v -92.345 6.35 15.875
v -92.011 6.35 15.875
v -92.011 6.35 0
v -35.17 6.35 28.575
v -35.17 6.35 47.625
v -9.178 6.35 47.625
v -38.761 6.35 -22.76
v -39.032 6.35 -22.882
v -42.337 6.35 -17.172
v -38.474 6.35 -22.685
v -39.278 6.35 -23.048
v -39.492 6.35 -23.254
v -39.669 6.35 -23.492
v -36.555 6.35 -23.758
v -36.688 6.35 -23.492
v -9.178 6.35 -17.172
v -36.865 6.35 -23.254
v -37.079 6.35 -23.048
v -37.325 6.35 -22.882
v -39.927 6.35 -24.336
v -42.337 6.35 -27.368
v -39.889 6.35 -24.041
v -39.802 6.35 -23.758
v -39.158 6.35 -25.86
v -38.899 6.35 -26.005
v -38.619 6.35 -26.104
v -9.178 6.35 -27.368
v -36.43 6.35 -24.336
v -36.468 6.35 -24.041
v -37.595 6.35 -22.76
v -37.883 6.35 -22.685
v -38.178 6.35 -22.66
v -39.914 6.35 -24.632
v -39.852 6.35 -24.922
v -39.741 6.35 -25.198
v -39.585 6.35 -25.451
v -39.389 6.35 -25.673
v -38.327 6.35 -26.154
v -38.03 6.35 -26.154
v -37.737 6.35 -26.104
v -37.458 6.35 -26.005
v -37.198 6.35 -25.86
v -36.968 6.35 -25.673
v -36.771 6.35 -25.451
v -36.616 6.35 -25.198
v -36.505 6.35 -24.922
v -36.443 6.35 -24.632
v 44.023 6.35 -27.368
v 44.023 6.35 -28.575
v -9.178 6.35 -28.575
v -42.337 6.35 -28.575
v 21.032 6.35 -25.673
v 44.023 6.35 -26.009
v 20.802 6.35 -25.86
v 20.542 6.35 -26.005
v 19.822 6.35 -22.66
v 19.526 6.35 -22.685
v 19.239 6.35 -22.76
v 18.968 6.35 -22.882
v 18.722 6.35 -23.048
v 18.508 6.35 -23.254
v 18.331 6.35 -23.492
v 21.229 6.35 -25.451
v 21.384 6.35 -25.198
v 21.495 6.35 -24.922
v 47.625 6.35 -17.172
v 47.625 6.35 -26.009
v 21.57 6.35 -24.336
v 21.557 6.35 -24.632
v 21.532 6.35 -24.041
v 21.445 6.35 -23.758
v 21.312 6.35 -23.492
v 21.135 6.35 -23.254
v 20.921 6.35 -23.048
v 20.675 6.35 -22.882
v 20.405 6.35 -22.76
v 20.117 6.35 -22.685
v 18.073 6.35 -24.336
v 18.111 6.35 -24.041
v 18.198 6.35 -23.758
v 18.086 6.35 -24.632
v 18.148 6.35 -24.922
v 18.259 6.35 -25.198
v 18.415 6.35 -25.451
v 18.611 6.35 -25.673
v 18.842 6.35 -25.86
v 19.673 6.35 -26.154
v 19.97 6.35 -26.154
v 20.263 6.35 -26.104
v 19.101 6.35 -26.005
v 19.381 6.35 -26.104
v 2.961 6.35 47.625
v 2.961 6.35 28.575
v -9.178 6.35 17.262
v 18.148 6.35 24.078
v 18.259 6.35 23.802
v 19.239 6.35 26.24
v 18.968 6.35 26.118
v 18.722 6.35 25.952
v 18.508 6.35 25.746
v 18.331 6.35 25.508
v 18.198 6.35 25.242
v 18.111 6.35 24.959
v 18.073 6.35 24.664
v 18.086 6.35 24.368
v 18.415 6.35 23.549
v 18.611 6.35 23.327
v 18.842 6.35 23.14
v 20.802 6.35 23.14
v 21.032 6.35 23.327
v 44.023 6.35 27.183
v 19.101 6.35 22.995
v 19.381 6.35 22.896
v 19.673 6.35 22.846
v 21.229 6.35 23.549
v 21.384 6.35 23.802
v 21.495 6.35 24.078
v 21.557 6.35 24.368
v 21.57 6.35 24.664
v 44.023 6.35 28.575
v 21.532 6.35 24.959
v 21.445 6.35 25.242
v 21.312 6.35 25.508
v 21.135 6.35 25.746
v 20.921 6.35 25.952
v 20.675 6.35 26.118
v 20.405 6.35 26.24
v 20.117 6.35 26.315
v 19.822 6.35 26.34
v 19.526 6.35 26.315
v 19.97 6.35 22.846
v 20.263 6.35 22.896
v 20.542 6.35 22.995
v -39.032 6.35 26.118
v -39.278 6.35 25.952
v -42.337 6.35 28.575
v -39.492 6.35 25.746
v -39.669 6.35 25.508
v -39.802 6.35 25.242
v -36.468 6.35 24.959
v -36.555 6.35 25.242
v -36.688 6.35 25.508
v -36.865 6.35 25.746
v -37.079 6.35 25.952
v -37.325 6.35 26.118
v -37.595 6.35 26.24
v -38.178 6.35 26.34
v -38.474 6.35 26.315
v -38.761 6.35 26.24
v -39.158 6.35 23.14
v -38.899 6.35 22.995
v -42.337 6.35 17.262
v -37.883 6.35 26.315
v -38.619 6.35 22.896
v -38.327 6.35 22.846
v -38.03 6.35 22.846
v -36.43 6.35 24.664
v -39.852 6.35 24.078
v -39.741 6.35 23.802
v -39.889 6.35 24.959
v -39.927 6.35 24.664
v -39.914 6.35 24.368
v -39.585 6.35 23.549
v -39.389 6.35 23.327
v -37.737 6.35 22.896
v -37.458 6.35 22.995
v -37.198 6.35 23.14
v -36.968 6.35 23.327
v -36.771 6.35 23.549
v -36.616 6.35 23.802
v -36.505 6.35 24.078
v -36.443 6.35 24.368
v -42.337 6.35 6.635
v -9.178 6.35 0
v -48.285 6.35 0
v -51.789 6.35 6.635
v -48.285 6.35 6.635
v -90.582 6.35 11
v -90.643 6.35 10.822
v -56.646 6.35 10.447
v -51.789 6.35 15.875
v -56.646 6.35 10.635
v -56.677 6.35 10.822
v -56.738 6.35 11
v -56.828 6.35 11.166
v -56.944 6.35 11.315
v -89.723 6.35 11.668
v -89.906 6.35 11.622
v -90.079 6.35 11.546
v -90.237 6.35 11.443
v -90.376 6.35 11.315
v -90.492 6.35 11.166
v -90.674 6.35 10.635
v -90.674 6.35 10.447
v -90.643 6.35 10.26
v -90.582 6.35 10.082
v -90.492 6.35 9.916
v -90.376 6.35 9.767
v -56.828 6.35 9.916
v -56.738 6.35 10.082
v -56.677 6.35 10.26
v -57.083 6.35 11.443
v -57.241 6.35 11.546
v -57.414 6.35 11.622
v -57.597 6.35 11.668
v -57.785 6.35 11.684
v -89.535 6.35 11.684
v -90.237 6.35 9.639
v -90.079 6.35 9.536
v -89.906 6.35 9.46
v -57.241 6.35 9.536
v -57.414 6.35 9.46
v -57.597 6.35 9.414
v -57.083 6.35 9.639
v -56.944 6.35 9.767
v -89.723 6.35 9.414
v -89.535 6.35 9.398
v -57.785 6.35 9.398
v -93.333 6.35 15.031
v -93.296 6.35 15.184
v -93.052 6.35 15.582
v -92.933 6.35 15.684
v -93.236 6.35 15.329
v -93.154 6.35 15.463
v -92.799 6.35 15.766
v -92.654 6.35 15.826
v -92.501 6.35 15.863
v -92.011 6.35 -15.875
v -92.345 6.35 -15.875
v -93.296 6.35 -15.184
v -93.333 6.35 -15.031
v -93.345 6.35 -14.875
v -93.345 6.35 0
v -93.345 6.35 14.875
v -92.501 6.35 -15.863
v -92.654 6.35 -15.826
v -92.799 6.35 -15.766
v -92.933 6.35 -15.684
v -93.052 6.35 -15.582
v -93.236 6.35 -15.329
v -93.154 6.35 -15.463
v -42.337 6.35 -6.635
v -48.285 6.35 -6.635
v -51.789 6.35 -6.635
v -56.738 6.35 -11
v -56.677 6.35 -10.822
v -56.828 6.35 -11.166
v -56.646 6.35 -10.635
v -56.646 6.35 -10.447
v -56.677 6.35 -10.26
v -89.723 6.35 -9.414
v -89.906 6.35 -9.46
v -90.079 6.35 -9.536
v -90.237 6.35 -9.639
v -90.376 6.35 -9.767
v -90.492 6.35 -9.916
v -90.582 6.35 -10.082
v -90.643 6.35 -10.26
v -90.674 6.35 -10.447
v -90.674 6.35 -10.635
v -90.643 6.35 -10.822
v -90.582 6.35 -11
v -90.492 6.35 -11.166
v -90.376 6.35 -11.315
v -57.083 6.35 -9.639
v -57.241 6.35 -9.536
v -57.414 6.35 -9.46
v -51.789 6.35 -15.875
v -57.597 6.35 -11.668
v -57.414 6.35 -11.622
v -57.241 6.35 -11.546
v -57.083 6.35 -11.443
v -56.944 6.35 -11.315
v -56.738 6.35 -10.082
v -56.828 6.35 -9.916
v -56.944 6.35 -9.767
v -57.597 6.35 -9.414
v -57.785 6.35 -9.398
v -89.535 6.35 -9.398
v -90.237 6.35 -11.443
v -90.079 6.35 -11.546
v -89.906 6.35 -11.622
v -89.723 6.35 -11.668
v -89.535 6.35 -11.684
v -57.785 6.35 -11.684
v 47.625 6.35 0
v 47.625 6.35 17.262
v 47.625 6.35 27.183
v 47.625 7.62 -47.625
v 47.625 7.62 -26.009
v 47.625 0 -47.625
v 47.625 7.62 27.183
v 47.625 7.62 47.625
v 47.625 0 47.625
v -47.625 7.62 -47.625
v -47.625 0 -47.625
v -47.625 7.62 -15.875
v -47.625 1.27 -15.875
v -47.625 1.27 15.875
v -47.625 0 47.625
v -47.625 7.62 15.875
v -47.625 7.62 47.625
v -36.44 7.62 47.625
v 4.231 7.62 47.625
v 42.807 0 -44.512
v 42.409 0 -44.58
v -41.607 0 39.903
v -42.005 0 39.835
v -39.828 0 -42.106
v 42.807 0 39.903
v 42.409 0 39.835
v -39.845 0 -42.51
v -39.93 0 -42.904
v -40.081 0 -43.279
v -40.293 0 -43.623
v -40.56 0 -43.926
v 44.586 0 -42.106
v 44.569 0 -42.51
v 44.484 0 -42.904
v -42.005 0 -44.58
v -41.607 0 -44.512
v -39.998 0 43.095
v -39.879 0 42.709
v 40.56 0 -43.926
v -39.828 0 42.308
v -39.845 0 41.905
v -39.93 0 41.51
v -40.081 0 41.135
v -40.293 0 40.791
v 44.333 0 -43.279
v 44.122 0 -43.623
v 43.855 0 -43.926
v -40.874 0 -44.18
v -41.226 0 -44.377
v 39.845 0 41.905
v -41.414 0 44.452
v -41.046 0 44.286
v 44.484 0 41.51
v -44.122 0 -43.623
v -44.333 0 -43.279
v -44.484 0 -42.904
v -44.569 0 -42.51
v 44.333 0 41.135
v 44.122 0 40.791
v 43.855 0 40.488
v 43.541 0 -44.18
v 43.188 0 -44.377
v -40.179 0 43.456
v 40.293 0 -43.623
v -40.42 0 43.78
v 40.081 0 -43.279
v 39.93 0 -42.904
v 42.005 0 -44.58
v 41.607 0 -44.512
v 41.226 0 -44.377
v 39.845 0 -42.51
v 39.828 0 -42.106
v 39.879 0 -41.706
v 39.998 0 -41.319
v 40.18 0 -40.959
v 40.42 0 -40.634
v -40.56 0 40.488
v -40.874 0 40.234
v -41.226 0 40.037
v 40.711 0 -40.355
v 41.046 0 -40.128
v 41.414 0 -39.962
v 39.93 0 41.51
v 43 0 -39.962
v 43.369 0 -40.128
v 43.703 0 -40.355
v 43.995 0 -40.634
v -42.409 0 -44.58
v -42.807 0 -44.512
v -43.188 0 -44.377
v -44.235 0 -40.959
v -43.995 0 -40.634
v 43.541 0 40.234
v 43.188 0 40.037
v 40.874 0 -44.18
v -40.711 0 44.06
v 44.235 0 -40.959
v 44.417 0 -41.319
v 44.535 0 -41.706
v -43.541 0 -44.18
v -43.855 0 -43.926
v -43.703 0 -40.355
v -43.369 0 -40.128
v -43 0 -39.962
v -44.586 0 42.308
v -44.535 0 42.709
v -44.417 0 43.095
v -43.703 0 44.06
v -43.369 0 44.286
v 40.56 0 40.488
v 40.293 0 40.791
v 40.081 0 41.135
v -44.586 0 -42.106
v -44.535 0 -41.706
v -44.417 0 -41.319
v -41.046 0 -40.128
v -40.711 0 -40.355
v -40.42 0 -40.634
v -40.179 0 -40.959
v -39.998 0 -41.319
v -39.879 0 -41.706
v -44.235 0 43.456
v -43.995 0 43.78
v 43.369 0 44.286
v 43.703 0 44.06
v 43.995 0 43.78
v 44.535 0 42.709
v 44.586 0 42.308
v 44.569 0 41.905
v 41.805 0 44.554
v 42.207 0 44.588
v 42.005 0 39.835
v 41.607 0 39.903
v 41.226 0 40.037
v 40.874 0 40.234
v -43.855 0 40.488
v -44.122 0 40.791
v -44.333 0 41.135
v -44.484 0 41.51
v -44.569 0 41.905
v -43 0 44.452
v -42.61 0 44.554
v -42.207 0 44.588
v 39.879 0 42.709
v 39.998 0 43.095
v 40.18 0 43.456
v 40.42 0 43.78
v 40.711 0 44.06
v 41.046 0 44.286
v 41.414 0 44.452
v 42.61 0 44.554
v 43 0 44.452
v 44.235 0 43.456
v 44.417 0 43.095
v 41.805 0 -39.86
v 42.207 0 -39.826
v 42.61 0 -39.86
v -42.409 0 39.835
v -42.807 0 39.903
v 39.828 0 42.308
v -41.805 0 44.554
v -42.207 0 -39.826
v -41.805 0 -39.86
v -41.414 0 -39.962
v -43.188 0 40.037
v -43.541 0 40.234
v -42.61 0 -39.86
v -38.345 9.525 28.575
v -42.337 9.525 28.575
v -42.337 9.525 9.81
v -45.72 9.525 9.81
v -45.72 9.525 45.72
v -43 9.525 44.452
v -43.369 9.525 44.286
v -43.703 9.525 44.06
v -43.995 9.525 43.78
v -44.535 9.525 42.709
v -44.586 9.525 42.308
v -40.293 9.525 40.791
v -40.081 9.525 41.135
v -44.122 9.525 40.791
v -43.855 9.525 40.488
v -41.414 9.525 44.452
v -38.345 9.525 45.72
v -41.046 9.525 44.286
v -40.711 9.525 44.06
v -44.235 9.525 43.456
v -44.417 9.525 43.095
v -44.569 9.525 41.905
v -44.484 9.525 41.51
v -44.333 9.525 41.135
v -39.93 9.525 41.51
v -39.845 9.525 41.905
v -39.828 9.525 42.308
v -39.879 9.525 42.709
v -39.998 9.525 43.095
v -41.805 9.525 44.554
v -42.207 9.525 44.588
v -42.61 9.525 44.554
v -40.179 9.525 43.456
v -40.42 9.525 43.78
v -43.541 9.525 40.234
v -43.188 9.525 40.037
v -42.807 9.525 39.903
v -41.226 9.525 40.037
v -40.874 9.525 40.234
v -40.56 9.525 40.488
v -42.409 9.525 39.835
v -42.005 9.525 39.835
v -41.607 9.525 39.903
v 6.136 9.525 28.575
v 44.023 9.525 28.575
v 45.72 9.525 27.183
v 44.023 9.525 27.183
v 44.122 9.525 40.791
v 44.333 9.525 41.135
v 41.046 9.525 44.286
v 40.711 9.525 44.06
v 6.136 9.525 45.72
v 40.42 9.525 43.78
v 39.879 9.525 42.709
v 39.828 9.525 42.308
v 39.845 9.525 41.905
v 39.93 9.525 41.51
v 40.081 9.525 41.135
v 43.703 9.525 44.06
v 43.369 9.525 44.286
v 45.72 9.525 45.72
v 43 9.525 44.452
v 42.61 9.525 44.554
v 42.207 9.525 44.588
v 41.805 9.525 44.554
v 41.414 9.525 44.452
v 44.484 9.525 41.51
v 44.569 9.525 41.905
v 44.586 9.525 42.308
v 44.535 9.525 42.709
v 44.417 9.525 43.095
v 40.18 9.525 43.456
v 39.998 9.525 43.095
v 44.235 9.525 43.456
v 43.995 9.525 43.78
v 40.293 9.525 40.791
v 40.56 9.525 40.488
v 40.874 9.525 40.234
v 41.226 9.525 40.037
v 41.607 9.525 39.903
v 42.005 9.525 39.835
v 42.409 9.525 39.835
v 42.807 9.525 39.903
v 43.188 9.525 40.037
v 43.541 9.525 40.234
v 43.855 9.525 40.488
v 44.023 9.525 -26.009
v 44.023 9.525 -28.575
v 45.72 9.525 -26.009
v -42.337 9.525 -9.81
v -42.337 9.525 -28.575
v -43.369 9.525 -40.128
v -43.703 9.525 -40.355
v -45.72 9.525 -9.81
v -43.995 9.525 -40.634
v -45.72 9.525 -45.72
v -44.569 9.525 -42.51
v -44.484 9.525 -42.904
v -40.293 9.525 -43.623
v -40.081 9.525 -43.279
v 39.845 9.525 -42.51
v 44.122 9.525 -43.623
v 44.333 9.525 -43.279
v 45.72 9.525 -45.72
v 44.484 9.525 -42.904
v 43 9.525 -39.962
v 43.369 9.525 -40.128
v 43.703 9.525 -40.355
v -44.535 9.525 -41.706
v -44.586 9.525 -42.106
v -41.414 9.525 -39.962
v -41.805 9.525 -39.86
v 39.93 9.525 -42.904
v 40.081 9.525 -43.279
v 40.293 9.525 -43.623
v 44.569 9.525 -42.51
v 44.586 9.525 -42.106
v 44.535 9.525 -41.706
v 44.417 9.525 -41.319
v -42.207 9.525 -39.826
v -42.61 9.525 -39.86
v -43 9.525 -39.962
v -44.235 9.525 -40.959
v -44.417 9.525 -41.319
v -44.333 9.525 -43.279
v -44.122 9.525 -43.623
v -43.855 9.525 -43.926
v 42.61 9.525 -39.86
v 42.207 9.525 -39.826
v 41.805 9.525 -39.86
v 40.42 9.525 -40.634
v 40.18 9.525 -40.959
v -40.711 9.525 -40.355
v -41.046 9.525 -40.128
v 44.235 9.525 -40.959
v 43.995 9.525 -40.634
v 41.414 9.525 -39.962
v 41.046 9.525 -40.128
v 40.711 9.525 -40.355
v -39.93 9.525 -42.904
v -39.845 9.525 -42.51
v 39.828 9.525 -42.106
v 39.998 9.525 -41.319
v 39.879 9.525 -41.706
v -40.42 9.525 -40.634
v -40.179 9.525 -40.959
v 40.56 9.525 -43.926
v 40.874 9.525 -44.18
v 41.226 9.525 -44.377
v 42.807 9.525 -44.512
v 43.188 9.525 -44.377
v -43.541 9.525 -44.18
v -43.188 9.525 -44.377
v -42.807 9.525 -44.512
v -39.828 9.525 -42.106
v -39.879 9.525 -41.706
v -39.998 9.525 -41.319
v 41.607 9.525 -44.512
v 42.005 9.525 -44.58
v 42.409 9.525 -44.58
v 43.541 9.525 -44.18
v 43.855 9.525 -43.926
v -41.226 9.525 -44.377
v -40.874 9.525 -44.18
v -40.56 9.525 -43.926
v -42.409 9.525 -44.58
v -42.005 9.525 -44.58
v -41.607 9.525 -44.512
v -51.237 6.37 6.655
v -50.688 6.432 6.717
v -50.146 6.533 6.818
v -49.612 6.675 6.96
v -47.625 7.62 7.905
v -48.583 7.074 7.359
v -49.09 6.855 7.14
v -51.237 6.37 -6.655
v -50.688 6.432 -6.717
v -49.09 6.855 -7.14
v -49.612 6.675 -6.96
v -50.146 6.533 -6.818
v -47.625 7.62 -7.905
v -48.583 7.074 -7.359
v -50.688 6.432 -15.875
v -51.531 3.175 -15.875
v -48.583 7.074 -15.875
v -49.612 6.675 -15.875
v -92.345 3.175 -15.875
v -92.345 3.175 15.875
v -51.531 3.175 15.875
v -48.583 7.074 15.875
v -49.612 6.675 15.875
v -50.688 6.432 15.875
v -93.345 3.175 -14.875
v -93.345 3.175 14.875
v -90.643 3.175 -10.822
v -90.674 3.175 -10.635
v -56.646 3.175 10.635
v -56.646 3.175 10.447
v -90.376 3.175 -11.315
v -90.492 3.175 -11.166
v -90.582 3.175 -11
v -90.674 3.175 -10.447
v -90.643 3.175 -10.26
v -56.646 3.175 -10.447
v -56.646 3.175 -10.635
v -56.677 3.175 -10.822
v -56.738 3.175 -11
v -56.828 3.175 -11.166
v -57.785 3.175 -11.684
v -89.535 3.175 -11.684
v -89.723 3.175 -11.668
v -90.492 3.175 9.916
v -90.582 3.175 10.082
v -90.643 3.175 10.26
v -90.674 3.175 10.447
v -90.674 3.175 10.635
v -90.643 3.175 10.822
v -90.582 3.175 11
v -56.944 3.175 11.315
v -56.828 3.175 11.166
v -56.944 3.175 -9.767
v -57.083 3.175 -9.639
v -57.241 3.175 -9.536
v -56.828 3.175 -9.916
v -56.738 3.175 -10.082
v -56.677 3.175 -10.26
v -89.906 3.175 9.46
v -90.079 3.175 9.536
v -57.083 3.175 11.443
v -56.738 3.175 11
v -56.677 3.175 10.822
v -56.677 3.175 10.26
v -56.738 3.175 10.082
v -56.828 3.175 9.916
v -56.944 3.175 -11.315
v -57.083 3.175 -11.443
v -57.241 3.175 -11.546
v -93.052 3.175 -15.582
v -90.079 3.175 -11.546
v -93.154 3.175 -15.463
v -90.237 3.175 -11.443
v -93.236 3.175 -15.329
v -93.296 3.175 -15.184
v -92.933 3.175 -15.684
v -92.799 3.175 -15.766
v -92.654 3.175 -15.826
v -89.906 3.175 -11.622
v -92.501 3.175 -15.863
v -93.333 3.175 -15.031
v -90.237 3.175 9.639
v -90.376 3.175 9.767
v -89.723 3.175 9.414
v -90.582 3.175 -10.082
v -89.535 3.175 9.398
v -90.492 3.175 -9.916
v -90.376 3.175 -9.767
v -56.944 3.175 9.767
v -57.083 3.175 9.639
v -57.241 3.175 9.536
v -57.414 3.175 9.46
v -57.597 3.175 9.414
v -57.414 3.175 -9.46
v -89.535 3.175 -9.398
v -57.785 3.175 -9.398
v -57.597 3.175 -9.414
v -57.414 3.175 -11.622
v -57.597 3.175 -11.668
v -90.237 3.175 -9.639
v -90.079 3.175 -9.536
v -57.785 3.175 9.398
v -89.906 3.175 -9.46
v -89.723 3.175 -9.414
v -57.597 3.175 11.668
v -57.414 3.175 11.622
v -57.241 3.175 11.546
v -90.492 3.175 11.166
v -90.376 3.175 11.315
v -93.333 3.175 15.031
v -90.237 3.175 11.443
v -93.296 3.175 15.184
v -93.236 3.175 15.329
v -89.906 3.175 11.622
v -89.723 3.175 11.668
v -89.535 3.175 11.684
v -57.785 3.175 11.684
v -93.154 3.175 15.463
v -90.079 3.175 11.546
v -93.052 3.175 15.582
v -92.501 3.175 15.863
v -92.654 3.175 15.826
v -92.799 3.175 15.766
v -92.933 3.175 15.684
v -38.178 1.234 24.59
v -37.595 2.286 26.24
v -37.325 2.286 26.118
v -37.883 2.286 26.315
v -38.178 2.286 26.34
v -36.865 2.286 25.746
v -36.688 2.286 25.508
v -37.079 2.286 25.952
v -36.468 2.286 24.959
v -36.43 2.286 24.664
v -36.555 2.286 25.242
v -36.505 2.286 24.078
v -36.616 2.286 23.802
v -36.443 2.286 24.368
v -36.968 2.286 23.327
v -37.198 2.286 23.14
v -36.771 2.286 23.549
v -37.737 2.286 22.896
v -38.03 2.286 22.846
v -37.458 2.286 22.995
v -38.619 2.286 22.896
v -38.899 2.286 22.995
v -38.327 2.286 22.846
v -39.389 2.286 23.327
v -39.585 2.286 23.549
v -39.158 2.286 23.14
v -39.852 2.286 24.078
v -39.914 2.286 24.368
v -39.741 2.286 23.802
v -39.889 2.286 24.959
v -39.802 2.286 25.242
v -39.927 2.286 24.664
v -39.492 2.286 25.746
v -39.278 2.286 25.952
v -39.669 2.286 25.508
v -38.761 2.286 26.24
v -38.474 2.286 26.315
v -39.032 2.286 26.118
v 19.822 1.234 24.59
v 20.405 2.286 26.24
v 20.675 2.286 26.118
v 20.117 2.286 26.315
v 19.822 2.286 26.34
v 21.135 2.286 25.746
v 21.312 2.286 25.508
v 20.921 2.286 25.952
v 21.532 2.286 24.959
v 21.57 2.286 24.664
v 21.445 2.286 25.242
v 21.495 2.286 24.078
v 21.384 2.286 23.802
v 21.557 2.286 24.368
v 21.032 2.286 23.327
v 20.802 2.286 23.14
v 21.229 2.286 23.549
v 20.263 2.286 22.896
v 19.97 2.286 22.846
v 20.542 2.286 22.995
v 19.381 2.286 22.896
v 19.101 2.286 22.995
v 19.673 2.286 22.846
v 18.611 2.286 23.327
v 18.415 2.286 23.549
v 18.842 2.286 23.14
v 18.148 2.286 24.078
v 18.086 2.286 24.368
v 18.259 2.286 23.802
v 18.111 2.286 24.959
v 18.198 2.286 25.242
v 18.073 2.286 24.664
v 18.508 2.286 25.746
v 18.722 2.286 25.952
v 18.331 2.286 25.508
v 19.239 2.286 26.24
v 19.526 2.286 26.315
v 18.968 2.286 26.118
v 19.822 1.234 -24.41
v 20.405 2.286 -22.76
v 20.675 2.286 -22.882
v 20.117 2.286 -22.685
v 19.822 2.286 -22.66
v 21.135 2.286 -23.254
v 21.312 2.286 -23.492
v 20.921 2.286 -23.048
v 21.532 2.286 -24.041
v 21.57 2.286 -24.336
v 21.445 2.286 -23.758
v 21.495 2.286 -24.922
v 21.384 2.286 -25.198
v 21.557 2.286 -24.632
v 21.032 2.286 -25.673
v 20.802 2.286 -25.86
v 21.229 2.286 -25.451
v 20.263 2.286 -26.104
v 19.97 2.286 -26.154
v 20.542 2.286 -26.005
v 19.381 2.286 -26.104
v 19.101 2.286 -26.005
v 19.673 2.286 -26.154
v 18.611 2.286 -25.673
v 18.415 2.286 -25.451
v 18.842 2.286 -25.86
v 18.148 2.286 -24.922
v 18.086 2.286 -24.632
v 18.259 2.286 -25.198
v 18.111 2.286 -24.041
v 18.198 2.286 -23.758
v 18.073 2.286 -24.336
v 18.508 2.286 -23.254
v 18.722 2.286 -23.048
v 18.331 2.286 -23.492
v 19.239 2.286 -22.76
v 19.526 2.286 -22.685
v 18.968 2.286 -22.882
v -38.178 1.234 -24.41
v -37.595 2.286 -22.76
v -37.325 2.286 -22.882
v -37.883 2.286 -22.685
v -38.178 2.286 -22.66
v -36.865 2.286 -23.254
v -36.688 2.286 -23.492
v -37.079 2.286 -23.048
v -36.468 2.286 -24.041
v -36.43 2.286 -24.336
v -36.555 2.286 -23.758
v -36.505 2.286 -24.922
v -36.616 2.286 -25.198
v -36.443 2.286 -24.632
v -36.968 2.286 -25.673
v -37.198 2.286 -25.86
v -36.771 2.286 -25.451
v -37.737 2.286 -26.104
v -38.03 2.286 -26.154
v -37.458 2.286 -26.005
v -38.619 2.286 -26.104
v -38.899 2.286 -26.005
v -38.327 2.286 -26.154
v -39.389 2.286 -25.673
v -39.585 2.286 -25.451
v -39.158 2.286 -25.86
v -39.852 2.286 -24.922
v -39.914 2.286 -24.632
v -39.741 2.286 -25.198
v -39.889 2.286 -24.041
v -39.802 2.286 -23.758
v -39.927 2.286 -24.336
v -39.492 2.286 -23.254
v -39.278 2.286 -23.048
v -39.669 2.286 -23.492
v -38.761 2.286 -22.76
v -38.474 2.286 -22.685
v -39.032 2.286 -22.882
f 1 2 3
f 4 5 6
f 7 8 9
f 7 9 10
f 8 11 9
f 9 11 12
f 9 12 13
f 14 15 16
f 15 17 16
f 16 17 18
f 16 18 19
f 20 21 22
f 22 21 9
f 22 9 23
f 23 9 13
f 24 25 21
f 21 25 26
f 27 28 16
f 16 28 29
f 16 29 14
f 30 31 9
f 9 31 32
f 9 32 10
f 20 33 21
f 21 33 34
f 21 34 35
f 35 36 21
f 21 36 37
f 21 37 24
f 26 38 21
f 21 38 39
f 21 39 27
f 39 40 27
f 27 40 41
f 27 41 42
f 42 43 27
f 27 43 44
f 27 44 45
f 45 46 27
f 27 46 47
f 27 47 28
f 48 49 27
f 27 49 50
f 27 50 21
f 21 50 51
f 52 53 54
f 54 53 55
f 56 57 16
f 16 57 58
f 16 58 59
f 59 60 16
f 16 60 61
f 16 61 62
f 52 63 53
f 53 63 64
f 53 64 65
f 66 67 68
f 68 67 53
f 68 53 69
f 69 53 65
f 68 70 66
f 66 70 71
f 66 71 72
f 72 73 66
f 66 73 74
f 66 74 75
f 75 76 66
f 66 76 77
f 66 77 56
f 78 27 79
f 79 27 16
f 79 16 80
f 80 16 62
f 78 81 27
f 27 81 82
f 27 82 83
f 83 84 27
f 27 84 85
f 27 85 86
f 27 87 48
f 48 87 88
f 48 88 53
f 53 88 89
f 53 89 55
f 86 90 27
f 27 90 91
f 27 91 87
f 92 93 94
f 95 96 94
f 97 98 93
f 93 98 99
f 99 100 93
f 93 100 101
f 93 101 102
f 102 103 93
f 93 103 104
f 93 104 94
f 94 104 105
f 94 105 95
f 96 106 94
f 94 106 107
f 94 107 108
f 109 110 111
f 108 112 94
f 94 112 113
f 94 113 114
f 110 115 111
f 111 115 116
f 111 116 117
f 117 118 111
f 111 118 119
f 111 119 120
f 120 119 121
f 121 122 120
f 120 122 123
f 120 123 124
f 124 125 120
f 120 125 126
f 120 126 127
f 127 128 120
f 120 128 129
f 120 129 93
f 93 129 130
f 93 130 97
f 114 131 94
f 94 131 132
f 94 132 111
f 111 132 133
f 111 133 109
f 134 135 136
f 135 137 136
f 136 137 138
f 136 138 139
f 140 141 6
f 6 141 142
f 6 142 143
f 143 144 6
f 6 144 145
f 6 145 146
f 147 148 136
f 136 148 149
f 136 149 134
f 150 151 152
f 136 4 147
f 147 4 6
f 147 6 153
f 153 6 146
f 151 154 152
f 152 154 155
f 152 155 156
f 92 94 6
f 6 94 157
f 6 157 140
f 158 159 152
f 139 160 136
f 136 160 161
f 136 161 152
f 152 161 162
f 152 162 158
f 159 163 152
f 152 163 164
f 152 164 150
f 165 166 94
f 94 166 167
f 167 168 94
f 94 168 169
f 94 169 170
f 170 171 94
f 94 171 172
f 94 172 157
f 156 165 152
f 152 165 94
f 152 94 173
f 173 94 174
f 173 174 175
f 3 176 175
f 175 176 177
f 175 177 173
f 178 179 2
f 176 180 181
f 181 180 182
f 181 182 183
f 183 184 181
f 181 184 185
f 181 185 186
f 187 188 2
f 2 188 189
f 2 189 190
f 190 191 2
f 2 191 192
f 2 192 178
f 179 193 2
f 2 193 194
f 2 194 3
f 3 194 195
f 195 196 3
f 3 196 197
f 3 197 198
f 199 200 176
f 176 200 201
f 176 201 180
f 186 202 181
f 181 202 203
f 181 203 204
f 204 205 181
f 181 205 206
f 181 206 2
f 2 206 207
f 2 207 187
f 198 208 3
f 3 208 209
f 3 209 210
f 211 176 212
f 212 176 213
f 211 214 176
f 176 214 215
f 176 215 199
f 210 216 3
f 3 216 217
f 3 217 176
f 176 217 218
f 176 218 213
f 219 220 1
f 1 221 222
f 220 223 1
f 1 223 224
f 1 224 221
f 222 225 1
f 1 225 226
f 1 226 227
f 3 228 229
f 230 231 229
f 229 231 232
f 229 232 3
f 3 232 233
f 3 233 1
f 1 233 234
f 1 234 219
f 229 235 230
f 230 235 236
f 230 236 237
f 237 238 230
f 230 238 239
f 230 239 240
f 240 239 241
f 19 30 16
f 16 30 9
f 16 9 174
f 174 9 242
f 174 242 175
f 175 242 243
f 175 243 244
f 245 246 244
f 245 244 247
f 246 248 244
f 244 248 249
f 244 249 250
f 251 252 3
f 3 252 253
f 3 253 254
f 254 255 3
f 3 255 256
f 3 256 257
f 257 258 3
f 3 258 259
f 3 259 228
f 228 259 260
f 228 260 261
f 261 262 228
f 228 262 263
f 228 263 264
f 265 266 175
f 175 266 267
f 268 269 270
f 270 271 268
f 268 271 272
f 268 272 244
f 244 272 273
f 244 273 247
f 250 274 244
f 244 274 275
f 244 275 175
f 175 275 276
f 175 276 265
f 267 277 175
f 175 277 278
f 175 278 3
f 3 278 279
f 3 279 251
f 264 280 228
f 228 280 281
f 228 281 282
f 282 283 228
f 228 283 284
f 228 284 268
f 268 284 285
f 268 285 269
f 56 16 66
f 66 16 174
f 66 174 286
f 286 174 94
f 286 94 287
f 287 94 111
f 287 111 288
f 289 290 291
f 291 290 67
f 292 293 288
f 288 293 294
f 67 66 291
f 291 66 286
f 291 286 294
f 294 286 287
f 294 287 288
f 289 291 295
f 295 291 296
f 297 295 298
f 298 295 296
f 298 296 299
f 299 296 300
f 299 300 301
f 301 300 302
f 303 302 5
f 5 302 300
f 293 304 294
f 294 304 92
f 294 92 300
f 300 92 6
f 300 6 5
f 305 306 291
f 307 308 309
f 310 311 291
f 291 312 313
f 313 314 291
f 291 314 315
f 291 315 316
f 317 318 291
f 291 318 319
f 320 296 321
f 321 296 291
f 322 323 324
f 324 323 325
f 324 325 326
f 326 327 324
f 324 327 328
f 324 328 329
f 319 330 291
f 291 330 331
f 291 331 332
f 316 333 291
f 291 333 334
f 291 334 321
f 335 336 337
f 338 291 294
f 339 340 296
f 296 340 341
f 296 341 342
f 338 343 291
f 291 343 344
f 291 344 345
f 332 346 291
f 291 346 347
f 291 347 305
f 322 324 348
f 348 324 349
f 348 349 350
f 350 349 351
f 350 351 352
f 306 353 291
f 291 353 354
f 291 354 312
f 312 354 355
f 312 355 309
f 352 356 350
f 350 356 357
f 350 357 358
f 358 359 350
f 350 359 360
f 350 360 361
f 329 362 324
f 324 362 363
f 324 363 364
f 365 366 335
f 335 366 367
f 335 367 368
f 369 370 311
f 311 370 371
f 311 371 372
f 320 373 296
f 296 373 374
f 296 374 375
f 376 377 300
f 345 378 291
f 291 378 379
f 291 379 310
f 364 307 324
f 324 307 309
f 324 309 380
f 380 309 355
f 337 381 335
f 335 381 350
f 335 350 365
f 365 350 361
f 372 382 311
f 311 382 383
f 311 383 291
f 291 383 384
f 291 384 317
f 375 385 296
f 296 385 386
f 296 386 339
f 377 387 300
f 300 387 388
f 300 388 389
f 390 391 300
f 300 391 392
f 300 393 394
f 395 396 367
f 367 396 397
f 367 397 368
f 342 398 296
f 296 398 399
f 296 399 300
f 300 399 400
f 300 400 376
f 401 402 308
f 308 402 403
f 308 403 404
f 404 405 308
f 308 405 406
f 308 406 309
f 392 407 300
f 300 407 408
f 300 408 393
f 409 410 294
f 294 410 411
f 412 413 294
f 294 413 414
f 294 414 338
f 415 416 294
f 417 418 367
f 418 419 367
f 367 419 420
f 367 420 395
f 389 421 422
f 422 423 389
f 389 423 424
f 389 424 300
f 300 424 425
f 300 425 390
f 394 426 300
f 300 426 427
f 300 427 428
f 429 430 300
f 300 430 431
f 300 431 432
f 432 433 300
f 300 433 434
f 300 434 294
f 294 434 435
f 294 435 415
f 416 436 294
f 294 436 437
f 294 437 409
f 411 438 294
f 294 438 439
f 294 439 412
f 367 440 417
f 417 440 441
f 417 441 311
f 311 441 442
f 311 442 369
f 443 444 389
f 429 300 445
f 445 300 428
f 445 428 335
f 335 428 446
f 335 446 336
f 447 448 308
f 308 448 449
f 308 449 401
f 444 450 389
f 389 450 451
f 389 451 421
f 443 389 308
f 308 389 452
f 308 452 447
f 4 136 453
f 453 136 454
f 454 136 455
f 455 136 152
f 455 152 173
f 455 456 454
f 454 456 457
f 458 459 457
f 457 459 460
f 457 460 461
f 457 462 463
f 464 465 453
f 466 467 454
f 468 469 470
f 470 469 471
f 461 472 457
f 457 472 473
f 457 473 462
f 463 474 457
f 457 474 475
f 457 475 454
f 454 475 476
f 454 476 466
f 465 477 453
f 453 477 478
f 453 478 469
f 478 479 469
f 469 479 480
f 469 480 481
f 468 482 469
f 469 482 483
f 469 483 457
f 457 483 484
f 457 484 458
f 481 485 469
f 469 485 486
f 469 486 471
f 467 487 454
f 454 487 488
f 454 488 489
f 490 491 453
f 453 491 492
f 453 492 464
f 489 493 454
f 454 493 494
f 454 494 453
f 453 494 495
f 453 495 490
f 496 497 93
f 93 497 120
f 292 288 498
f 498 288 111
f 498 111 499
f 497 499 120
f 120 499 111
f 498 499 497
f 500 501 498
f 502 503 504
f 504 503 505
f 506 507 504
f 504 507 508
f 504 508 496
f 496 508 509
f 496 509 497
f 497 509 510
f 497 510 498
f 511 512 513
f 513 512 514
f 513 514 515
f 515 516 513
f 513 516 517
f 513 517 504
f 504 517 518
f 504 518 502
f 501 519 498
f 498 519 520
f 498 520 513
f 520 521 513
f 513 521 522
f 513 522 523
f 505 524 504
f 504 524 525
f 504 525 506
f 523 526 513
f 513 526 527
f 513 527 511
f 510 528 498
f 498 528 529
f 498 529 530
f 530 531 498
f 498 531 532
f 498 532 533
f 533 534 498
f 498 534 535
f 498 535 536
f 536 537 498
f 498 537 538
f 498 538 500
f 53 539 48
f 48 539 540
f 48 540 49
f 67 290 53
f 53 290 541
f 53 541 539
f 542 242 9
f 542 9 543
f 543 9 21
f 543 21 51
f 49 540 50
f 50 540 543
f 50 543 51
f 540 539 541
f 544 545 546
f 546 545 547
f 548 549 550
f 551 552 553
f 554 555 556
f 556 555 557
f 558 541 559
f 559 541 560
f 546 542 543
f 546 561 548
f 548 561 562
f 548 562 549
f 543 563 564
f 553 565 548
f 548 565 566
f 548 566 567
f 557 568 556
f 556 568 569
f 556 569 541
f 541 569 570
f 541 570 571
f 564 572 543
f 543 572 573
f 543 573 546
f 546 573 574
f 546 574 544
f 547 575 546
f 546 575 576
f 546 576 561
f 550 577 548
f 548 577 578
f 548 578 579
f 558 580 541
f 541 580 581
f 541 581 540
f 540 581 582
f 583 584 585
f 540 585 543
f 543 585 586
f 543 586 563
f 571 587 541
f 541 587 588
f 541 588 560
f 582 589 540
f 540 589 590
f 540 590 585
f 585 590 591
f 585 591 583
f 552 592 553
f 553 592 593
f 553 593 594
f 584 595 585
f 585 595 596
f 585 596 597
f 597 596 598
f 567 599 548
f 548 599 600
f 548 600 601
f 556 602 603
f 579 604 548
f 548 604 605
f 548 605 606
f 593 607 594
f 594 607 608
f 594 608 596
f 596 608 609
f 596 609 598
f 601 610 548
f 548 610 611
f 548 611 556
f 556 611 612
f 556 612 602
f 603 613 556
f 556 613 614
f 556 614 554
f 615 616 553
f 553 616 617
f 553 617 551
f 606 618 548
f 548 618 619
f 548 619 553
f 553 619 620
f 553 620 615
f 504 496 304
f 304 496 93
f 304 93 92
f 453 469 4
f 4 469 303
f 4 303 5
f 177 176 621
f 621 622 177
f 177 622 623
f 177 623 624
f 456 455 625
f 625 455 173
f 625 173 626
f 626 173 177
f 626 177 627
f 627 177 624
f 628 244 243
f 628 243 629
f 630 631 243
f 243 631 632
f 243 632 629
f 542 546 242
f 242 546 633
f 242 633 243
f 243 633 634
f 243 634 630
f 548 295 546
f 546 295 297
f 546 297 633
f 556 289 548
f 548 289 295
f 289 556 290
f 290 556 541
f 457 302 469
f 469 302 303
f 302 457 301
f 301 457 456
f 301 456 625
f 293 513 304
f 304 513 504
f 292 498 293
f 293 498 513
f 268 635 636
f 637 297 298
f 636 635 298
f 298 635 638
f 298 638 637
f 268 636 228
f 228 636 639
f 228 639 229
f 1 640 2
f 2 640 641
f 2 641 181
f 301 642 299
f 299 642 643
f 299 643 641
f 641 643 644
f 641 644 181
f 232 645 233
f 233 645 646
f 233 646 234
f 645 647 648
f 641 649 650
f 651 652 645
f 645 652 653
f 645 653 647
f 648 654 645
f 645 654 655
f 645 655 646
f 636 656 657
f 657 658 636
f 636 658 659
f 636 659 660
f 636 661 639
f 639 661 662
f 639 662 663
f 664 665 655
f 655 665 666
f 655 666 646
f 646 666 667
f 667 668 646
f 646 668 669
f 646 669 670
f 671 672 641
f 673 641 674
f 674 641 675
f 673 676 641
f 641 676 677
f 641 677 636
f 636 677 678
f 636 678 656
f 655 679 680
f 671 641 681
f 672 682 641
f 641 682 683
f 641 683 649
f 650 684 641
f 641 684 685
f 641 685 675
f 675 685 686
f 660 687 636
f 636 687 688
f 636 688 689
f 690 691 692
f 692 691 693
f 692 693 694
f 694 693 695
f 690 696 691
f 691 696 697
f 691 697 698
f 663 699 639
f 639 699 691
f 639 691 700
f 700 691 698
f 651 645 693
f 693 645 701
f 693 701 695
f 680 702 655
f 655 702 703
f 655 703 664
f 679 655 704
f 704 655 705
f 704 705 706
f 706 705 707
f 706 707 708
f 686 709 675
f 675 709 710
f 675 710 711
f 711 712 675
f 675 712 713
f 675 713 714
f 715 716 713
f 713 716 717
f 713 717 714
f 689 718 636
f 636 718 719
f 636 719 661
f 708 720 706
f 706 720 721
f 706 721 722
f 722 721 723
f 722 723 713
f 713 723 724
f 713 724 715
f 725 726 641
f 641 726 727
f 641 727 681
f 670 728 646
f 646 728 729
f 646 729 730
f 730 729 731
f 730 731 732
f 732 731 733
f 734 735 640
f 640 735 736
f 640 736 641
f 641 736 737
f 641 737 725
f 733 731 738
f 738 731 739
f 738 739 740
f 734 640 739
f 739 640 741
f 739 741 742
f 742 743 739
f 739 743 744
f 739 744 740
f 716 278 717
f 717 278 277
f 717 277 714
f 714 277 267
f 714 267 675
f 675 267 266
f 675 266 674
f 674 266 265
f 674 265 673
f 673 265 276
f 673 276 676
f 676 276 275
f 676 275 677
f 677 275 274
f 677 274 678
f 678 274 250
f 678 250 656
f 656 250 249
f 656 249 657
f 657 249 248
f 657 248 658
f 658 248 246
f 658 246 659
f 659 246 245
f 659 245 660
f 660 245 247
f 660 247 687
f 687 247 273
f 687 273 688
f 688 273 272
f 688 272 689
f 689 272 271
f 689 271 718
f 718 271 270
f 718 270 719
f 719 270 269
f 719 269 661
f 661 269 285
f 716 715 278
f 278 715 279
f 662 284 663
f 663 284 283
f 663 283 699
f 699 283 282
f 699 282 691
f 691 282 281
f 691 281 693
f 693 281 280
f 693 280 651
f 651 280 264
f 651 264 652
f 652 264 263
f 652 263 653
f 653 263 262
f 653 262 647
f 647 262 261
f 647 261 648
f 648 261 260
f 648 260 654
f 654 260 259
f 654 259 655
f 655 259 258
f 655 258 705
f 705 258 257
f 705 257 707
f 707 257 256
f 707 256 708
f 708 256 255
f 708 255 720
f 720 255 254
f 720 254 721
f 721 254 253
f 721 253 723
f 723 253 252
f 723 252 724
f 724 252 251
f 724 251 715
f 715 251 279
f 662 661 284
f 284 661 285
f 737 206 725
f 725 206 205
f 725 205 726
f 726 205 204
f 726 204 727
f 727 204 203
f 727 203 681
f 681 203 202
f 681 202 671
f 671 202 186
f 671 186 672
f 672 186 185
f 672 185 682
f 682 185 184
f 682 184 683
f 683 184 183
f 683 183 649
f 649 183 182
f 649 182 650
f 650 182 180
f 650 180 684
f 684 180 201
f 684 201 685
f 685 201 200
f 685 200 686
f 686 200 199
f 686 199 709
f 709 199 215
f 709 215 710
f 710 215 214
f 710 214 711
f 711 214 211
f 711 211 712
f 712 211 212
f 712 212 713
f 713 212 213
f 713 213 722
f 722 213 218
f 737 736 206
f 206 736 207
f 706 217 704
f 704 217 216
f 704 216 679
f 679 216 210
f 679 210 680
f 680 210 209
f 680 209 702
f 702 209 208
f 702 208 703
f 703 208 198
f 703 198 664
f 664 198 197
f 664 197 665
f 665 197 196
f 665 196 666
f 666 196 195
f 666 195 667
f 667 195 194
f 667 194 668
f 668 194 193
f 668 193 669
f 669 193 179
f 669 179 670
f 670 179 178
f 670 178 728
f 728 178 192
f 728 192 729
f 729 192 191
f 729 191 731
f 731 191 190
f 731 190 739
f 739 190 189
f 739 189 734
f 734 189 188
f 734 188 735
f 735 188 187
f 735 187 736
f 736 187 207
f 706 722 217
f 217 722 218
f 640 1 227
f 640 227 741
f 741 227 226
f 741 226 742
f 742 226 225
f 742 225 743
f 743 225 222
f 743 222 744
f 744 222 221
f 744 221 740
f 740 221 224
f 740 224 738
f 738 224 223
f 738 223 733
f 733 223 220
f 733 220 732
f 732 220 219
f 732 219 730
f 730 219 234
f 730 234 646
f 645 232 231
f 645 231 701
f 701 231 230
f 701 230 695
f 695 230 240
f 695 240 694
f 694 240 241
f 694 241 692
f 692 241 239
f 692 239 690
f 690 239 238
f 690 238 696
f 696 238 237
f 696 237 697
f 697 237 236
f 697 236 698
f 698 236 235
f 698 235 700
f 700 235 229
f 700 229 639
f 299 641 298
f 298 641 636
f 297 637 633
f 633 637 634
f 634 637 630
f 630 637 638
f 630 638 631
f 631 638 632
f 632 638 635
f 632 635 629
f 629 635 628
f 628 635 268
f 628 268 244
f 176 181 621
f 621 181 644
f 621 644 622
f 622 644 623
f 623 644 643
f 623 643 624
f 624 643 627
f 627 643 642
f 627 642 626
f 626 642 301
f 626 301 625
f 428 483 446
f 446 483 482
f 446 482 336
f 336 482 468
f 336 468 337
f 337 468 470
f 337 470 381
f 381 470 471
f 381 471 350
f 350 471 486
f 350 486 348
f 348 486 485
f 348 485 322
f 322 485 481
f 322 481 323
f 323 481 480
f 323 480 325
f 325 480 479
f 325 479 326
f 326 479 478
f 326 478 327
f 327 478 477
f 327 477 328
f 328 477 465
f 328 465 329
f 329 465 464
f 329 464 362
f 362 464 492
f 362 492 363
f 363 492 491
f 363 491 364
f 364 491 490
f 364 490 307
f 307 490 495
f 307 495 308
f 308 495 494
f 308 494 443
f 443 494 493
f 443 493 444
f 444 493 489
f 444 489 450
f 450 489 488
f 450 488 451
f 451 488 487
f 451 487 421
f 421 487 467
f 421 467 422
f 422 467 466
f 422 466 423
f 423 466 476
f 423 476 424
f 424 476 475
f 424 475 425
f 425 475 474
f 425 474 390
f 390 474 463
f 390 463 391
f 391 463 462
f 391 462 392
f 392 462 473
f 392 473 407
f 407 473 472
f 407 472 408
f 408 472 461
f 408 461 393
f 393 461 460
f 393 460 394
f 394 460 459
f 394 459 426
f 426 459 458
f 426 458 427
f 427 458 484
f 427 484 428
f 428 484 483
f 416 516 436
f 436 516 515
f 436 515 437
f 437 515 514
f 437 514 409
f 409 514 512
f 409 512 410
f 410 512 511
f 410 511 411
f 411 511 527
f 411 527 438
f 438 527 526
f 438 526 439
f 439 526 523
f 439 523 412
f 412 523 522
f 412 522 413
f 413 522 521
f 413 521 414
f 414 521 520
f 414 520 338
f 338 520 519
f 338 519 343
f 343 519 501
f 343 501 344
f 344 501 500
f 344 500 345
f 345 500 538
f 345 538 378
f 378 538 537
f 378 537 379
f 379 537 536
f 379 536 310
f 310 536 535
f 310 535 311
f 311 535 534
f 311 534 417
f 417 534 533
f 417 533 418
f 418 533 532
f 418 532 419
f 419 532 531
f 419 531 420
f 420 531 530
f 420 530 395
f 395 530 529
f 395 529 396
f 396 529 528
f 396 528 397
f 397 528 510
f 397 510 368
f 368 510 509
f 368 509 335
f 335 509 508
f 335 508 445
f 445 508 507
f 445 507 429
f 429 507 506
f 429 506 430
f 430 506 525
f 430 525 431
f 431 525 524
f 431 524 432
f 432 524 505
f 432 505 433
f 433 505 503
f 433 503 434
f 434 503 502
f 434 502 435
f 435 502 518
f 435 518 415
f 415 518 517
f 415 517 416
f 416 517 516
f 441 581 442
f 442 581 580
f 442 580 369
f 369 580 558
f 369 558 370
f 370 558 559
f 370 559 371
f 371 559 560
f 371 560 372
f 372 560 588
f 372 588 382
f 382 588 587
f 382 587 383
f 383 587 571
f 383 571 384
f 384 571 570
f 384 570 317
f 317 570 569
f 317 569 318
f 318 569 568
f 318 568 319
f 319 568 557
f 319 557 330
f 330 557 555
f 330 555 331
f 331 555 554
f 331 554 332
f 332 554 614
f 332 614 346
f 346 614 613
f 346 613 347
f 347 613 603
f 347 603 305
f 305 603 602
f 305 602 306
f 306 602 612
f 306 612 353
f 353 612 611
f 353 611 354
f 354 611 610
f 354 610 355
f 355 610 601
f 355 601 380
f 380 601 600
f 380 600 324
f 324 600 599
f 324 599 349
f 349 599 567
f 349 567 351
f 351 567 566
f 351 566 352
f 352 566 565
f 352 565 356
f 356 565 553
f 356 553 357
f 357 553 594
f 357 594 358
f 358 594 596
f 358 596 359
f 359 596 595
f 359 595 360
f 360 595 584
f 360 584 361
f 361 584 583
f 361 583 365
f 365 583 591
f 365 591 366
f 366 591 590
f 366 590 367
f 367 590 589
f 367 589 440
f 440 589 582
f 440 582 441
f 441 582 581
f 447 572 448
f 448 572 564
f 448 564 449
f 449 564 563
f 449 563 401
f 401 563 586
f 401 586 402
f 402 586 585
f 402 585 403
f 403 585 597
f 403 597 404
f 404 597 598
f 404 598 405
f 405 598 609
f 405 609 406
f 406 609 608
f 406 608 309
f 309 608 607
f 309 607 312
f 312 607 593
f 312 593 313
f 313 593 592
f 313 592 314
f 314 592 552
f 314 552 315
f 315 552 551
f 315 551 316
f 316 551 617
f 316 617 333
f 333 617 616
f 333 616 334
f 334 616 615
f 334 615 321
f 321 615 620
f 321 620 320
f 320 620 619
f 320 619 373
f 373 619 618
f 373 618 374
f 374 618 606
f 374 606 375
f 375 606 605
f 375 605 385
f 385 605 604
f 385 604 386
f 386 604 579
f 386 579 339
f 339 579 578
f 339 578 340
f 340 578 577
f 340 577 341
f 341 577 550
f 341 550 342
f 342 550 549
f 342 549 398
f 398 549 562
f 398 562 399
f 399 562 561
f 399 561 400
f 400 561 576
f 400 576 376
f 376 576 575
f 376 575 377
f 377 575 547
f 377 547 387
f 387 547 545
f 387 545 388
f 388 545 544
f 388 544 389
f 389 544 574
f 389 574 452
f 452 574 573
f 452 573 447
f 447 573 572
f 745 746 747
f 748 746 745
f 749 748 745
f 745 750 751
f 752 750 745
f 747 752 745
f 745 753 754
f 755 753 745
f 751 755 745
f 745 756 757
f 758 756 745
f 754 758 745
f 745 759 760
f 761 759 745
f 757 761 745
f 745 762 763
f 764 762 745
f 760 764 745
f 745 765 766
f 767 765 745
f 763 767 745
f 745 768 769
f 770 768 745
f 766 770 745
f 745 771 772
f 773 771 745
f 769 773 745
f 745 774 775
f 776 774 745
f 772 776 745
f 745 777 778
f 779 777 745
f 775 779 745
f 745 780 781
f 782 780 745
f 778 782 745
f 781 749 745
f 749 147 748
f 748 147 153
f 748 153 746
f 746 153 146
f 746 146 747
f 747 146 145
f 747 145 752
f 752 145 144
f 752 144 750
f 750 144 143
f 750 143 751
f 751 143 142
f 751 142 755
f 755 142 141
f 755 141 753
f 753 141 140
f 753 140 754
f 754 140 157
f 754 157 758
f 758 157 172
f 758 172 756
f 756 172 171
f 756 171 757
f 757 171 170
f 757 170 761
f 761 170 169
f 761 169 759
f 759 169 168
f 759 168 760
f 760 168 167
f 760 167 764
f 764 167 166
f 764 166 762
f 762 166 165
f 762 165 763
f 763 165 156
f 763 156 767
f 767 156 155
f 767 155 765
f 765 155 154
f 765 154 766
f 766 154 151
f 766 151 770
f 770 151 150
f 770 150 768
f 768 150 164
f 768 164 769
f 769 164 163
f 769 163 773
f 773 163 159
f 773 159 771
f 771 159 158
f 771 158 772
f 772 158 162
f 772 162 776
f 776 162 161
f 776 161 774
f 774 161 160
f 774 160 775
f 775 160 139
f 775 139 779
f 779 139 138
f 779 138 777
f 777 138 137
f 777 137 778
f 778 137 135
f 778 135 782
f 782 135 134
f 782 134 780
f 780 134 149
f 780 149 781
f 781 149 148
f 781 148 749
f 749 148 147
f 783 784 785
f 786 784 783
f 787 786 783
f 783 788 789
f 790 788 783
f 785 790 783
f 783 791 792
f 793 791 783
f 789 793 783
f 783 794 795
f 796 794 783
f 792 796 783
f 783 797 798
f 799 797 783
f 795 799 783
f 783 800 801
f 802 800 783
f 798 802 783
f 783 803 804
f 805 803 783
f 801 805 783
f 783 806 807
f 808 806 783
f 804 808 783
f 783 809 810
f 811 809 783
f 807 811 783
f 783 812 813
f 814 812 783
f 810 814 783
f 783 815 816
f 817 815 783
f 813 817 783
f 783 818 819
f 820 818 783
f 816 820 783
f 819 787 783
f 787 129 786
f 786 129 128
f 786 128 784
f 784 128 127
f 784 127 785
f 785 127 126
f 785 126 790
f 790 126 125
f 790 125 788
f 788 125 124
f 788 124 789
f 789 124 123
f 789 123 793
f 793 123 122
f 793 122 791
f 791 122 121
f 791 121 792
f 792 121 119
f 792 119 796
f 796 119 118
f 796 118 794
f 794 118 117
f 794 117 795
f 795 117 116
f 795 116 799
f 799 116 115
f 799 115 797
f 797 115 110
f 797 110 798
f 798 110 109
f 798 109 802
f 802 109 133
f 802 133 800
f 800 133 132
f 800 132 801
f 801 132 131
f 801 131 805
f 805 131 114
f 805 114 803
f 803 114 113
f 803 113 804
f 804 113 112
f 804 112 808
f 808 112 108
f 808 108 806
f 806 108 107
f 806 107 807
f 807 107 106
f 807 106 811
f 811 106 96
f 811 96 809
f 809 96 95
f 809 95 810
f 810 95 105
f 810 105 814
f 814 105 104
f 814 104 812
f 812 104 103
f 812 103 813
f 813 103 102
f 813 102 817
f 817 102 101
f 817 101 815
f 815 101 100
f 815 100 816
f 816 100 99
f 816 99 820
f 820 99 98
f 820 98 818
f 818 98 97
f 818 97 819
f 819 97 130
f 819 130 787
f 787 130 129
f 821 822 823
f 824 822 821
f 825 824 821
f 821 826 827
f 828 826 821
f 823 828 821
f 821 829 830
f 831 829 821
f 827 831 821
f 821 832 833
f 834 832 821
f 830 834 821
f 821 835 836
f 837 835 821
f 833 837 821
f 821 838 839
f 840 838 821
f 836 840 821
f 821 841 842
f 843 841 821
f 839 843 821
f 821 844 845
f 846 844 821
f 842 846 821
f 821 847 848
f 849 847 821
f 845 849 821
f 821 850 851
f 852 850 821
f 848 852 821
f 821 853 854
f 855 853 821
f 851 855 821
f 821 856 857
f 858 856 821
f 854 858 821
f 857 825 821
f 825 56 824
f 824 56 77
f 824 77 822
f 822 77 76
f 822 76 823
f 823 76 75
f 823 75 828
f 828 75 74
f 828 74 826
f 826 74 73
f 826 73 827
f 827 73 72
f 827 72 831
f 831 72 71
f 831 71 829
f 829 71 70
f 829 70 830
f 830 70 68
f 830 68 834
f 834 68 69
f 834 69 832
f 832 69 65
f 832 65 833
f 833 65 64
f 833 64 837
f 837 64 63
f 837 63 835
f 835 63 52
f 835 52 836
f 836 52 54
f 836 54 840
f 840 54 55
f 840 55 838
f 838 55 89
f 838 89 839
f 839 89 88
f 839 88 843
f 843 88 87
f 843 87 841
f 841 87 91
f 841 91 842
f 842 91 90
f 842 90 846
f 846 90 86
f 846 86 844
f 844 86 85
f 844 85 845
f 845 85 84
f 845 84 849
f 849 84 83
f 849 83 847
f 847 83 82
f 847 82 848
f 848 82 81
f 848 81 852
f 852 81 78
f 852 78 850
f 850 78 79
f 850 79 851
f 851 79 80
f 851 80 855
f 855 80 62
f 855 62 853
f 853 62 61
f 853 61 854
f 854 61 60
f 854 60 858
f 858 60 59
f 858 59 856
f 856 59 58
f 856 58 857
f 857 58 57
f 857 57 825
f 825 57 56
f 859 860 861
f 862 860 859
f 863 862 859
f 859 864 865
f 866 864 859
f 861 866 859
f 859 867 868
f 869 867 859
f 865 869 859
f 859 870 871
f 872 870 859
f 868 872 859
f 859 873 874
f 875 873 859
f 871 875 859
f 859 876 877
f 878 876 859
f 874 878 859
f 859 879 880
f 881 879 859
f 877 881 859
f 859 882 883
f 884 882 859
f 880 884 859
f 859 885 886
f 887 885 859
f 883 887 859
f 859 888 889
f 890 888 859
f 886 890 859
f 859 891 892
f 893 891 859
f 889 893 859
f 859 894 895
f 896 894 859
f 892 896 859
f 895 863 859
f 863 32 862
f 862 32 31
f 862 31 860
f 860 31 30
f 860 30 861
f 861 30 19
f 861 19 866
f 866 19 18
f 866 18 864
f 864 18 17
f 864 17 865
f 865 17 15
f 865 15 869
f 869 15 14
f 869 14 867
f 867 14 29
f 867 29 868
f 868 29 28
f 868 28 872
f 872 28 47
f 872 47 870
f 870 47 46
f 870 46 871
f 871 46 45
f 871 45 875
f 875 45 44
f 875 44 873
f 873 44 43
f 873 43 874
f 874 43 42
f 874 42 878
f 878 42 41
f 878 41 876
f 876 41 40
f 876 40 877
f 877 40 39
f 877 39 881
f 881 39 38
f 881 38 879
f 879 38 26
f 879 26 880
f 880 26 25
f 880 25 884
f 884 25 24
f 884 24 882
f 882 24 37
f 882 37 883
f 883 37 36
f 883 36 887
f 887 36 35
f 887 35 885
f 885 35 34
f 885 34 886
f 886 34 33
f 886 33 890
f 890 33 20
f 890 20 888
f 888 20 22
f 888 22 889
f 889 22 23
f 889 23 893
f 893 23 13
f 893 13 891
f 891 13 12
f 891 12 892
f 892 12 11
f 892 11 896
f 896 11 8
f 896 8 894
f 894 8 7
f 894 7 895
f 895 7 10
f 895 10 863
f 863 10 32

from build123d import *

# Parameters (mm, degrees)
SKETCH1_W                          = 95.25
SKETCH1_H                          = 95.25
BASE_EXTRUDE_DEPTH                 = 6.35
PI_SLOT_DEPTH                      = 3.175
CHAMFER1_SIZE                      = 3.81
CHAMFER2_SIZE                      = 1.905
CAMERA_START                       = 6.35
SKETCH3_W                          = 45.72
SKETCH3_H                          = 31.75
CAMERA_SLOT_DEPTH                  = 3.175
FILLET1_R                          = 1
CHAMFER3_SIZE                      = 1.905
CHAMFER3_SIZE2                     = 3.905828818
FILLET2_R                          = 7.46
F_3_16_0_1875_DIAMETER_HOLE1_D     = 4.7625
F_3_16_0_1875_DIAMETER_HOLE1_DEPTH = 9.525
F_3_16_0_1875_DIAMETER_HOLE1_TIP   = 1.430799349
F_3_5_3_5_DIAMETER_HOLE1_D         = 3.5
F_3_5_3_5_DIAMETER_HOLE1_DEPTH     = 4.064
F_3_5_3_5_DIAMETER_HOLE1_TIP       = 1.051506083


with BuildPart() as part:
    # Sketch1 → Base Extrude (new body)
    with BuildSketch(Plane(origin=(0, 0, 0), x_dir=(1, 0, 0), z_dir=(0, 1, 0))):
        Rectangle(SKETCH1_W, SKETCH1_H)
    extrude(amount=BASE_EXTRUDE_DEPTH)

    # Sketch2 → Pi Slot (add)
    with BuildSketch(Plane(origin=(0, 6.35, 0), x_dir=(1, 0, 0), z_dir=(0, 1, 0))):
        Polygon((-34.534633186, -28.575), (-42.33681664, -28.575), (-42.33681664, -6), (-47.625, -6), (-47.625, -47.625), (-34.534633186, -47.625), align=None)
        Polygon((2.325611102, -28.575), (2.325611102, -47.625), (47.625, -47.625), (47.625, -27.183287233), (44.02318336, -27.183287233), (44.02318336, -28.575), align=None)
        Polygon((-47.625, 47.625), (-47.625, 6), (-42.33681664, 6), (-42.33681664, 28.575), (44.02318336, 28.575), (44.02318336, 26.009127411), (47.625, 26.009127411), (47.625, 47.625), align=None)
    extrude(amount=PI_SLOT_DEPTH)

    # Chamfer1
    # the kernel refuses this chamfer: 3.81 mm, written as the material it takes off along each edge
    with BuildSketch(Plane(origin=(2.325611102, 9.525, 18.776887816), x_dir=(-0.027495876610586382, -0.9996219169112968, 0), z_dir=(0, 0, 1))) as chamfer1_piece_1_section:
        Polygon((CHAMFER1_SIZE * 0.999621916911, CHAMFER1_SIZE * 0.0274958766106), (-CHAMFER1_SIZE * 0.0274958766106, CHAMFER1_SIZE * 0.999621916911), (0, 0), align=None)
    chamfer1_piece_1 = extrude(amount=38.646224368, mode=Mode.PRIVATE)
    chamfer1_piece_1 = split(chamfer1_piece_1, bisect_by=Plane(origin=(3.62873216, 6.35, 38.1), z_dir=(0, 1, 0)), keep=Keep.TOP, mode=Mode.PRIVATE)
    add(chamfer1_piece_1, mode=Mode.SUBTRACT)
    with BuildSketch(Plane(origin=(-34.534633186, 9.525, 57.423112184), x_dir=(-0.9996219169112968, 0.02749587661058636, 0), z_dir=(0, 0, -1))) as chamfer1_piece_2_section:
        Polygon((CHAMFER1_SIZE * 0.999621916911, -CHAMFER1_SIZE * 0.0274958766106), (-CHAMFER1_SIZE * 0.0274958766106, -CHAMFER1_SIZE * 0.999621916911), (0, 0), align=None)
    chamfer1_piece_2 = extrude(amount=38.646224368, mode=Mode.PRIVATE)
    chamfer1_piece_2 = split(chamfer1_piece_2, bisect_by=Plane(origin=(-35.837754245, 6.35, 38.1), z_dir=(0, 1, 0)), keep=Keep.TOP, mode=Mode.PRIVATE)
    add(chamfer1_piece_2, mode=Mode.SUBTRACT)
    with BuildSketch(Plane(origin=(-32.538704456, 9.525, 6), x_dir=(0, 0.027495876610586386, 0.9996219169112968), z_dir=(-1, 0, 0))) as chamfer1_piece_3_section:
        Polygon((CHAMFER1_SIZE * 0.999621916911, -CHAMFER1_SIZE * 0.0274958766106), (-CHAMFER1_SIZE * 0.0274958766106, -CHAMFER1_SIZE * 0.999621916911), (0, 0), align=None)
    chamfer1_piece_3 = extrude(amount=24.884407728, mode=Mode.PRIVATE)
    chamfer1_piece_3 = split(chamfer1_piece_3, bisect_by=Plane(origin=(-44.98090832, 6.35, 7.303121058), z_dir=(0, 1, 0)), keep=Keep.TOP, mode=Mode.PRIVATE)
    add(chamfer1_piece_3, mode=Mode.SUBTRACT)
    with BuildSketch(Plane(origin=(-57.423112184, 9.525, -6), x_dir=(0, -0.9996219169112968, 0.027495876610586382), z_dir=(1, 0, 0))) as chamfer1_piece_4_section:
        Polygon((CHAMFER1_SIZE * 0.999621916911, CHAMFER1_SIZE * 0.0274958766106), (-CHAMFER1_SIZE * 0.0274958766106, CHAMFER1_SIZE * 0.999621916911), (0, 0), align=None)
    chamfer1_piece_4 = extrude(amount=24.884407728, mode=Mode.PRIVATE)
    chamfer1_piece_4 = split(chamfer1_piece_4, bisect_by=Plane(origin=(-44.98090832, 6.35, -7.303121058), z_dir=(0, 1, 0)), keep=Keep.TOP, mode=Mode.PRIVATE)
    add(chamfer1_piece_4, mode=Mode.SUBTRACT)

    # Chamfer2
    chamfer2_edges = [part.edges().sort_by_distance(p)[0] for p in [
        (-42.984816593, 9.525, 47.625),
        (47.625, 9.525, 37.404143616),
        (47.625, 9.525, -36.817063706),
        (0, 9.525, -47.625),
        (-47.625, 9.525, -28.7175),
        (26.880305551, 9.525, 47.625),
        (-47.625, 9.525, 28.7175),
    ]]
    chamfer(chamfer2_edges, length=CHAMFER2_SIZE)

    # Sketch3 → Camera Slot (add)
    with BuildSketch(Plane(origin=(0, 0, 0), x_dir=(1, 0, 0), z_dir=(0, 1, 0)).offset(CAMERA_START)):
        with Locations((-70.485, 0)):
            Rectangle(SKETCH3_W, SKETCH3_H)
        with BuildLine():
            Line((-89.535, 11.684), (-57.785, 11.684))
            ThreePointArc((-57.785, 11.684), (-56.642, 10.541), (-57.785, 9.398))
            Line((-57.785, 9.398), (-89.535, 9.398))
            ThreePointArc((-89.535, 9.398), (-90.678, 10.541), (-89.535, 11.684))
        make_face(mode=Mode.SUBTRACT)
        with BuildLine():
            Line((-89.535, -11.684), (-57.785, -11.684))
            ThreePointArc((-57.785, -11.684), (-56.642, -10.541), (-57.785, -9.398))
            Line((-57.785, -9.398), (-89.535, -9.398))
            ThreePointArc((-89.535, -9.398), (-90.678, -10.541), (-89.535, -11.684))
        make_face(mode=Mode.SUBTRACT)
    extrude(amount=-CAMERA_SLOT_DEPTH)

    # Fillet1
    fillet1_edges = [part.edges().sort_by_distance(p)[0] for p in [
        (-93.345, 4.7625, -15.875),
        (-93.345, 4.7625, 15.875),
    ]]
    fillet(fillet1_edges, radius=FILLET1_R)

    # Chamfer3
    chamfer3_edges = [part.edges().sort_by_distance(p)[0] for p in [
        (-47.625, 3.175, 0),
    ]]
    chamfer3_side = [part.faces().sort_by_distance(p)[0] for p in [
        (-47.625, 3.81, 46.669456861),
    ]]
    chamfer(chamfer3_edges, length=CHAMFER3_SIZE, length2=CHAMFER3_SIZE2, reference=chamfer3_side[0])

    # Fillet2
    # the kernel refuses this fillet: 7.46 mm, written as the material it adds along each edge
    with BuildSketch(Plane(origin=(-47.625, 6.35, -15.875), x_dir=(-1, 0, 0), z_dir=(0, 0, 1))) as fillet2_piece_1_section:
        with BuildLine():
            CenterArc((4.163592199, -7.46), FILLET2_R, 90, 33.926040017)
            Line((0, -1.27), (0, 0))
            Line((0, 0), (4.163592199, 0))
        make_face()
    fillet2_piece_1 = extrude(amount=19.648980498, mode=Mode.PRIVATE)
    fillet2_piece_1 = split(fillet2_piece_1, bisect_by=Plane(origin=(-49.607751226, 8.8151447, -9.1001447), z_dir=(0, -0.7071067811868302, -0.7071067811862648)), keep=Keep.TOP, mode=Mode.PRIVATE)
    add(fillet2_piece_1)
    with BuildSketch(Plane(origin=(-47.625, 6.35, -3.773980498), x_dir=(-1, 0, 0), z_dir=(0, 0, 1))) as fillet2_piece_2_section:
        with BuildLine():
            CenterArc((4.163592199, -7.46), FILLET2_R, 90, 33.926040017)
            Line((0, -1.27), (0, 0))
            Line((0, 0), (4.163592199, 0))
        make_face()
    fillet2_piece_2 = extrude(amount=19.648980498, mode=Mode.PRIVATE)
    fillet2_piece_2 = split(fillet2_piece_2, bisect_by=Plane(origin=(-49.607751226, 8.8151447, 9.1001447), z_dir=(0, -0.7071067811862648, 0.7071067811868302)), keep=Keep.TOP, mode=Mode.PRIVATE)
    add(fillet2_piece_2)

    # 3/16 (0.1875) Diameter Hole1
    with Locations(Plane(origin=(0, 9.525, 0), x_dir=(1, 0, 0), z_dir=(0, 1, 0))):
        with Locations((-42.207203769, 42.207203769), (42.207203769, 42.207203769), (42.207203769, -42.207203769), (-42.207203769, -42.207203769)):
            Hole(F_3_16_0_1875_DIAMETER_HOLE1_D / 2, depth=F_3_16_0_1875_DIAMETER_HOLE1_DEPTH)
            with Locations((0, 0, -(F_3_16_0_1875_DIAMETER_HOLE1_DEPTH + F_3_16_0_1875_DIAMETER_HOLE1_TIP / 2))):  # 118° drill point
                Cone(0, F_3_16_0_1875_DIAMETER_HOLE1_D / 2, F_3_16_0_1875_DIAMETER_HOLE1_TIP, mode=Mode.SUBTRACT)

    # Ø3.5 (3.5) Diameter Hole1
    with Locations(Plane(origin=(0, 6.35, 0), x_dir=(1, 0, 0), z_dir=(0, 1, 0))):
        with Locations((-38.178407454, 24.41003259), (19.821592546, 24.41003259), (19.821592546, -24.589967454), (-38.178407454, -24.589967454)):
            Hole(F_3_5_3_5_DIAMETER_HOLE1_D / 2, depth=F_3_5_3_5_DIAMETER_HOLE1_DEPTH)
            with Locations((0, 0, -(F_3_5_3_5_DIAMETER_HOLE1_DEPTH + F_3_5_3_5_DIAMETER_HOLE1_TIP / 2))):  # 118° drill point
                Cone(0, F_3_5_3_5_DIAMETER_HOLE1_D / 2, F_3_5_3_5_DIAMETER_HOLE1_TIP, mode=Mode.SUBTRACT)


solid = part.part
